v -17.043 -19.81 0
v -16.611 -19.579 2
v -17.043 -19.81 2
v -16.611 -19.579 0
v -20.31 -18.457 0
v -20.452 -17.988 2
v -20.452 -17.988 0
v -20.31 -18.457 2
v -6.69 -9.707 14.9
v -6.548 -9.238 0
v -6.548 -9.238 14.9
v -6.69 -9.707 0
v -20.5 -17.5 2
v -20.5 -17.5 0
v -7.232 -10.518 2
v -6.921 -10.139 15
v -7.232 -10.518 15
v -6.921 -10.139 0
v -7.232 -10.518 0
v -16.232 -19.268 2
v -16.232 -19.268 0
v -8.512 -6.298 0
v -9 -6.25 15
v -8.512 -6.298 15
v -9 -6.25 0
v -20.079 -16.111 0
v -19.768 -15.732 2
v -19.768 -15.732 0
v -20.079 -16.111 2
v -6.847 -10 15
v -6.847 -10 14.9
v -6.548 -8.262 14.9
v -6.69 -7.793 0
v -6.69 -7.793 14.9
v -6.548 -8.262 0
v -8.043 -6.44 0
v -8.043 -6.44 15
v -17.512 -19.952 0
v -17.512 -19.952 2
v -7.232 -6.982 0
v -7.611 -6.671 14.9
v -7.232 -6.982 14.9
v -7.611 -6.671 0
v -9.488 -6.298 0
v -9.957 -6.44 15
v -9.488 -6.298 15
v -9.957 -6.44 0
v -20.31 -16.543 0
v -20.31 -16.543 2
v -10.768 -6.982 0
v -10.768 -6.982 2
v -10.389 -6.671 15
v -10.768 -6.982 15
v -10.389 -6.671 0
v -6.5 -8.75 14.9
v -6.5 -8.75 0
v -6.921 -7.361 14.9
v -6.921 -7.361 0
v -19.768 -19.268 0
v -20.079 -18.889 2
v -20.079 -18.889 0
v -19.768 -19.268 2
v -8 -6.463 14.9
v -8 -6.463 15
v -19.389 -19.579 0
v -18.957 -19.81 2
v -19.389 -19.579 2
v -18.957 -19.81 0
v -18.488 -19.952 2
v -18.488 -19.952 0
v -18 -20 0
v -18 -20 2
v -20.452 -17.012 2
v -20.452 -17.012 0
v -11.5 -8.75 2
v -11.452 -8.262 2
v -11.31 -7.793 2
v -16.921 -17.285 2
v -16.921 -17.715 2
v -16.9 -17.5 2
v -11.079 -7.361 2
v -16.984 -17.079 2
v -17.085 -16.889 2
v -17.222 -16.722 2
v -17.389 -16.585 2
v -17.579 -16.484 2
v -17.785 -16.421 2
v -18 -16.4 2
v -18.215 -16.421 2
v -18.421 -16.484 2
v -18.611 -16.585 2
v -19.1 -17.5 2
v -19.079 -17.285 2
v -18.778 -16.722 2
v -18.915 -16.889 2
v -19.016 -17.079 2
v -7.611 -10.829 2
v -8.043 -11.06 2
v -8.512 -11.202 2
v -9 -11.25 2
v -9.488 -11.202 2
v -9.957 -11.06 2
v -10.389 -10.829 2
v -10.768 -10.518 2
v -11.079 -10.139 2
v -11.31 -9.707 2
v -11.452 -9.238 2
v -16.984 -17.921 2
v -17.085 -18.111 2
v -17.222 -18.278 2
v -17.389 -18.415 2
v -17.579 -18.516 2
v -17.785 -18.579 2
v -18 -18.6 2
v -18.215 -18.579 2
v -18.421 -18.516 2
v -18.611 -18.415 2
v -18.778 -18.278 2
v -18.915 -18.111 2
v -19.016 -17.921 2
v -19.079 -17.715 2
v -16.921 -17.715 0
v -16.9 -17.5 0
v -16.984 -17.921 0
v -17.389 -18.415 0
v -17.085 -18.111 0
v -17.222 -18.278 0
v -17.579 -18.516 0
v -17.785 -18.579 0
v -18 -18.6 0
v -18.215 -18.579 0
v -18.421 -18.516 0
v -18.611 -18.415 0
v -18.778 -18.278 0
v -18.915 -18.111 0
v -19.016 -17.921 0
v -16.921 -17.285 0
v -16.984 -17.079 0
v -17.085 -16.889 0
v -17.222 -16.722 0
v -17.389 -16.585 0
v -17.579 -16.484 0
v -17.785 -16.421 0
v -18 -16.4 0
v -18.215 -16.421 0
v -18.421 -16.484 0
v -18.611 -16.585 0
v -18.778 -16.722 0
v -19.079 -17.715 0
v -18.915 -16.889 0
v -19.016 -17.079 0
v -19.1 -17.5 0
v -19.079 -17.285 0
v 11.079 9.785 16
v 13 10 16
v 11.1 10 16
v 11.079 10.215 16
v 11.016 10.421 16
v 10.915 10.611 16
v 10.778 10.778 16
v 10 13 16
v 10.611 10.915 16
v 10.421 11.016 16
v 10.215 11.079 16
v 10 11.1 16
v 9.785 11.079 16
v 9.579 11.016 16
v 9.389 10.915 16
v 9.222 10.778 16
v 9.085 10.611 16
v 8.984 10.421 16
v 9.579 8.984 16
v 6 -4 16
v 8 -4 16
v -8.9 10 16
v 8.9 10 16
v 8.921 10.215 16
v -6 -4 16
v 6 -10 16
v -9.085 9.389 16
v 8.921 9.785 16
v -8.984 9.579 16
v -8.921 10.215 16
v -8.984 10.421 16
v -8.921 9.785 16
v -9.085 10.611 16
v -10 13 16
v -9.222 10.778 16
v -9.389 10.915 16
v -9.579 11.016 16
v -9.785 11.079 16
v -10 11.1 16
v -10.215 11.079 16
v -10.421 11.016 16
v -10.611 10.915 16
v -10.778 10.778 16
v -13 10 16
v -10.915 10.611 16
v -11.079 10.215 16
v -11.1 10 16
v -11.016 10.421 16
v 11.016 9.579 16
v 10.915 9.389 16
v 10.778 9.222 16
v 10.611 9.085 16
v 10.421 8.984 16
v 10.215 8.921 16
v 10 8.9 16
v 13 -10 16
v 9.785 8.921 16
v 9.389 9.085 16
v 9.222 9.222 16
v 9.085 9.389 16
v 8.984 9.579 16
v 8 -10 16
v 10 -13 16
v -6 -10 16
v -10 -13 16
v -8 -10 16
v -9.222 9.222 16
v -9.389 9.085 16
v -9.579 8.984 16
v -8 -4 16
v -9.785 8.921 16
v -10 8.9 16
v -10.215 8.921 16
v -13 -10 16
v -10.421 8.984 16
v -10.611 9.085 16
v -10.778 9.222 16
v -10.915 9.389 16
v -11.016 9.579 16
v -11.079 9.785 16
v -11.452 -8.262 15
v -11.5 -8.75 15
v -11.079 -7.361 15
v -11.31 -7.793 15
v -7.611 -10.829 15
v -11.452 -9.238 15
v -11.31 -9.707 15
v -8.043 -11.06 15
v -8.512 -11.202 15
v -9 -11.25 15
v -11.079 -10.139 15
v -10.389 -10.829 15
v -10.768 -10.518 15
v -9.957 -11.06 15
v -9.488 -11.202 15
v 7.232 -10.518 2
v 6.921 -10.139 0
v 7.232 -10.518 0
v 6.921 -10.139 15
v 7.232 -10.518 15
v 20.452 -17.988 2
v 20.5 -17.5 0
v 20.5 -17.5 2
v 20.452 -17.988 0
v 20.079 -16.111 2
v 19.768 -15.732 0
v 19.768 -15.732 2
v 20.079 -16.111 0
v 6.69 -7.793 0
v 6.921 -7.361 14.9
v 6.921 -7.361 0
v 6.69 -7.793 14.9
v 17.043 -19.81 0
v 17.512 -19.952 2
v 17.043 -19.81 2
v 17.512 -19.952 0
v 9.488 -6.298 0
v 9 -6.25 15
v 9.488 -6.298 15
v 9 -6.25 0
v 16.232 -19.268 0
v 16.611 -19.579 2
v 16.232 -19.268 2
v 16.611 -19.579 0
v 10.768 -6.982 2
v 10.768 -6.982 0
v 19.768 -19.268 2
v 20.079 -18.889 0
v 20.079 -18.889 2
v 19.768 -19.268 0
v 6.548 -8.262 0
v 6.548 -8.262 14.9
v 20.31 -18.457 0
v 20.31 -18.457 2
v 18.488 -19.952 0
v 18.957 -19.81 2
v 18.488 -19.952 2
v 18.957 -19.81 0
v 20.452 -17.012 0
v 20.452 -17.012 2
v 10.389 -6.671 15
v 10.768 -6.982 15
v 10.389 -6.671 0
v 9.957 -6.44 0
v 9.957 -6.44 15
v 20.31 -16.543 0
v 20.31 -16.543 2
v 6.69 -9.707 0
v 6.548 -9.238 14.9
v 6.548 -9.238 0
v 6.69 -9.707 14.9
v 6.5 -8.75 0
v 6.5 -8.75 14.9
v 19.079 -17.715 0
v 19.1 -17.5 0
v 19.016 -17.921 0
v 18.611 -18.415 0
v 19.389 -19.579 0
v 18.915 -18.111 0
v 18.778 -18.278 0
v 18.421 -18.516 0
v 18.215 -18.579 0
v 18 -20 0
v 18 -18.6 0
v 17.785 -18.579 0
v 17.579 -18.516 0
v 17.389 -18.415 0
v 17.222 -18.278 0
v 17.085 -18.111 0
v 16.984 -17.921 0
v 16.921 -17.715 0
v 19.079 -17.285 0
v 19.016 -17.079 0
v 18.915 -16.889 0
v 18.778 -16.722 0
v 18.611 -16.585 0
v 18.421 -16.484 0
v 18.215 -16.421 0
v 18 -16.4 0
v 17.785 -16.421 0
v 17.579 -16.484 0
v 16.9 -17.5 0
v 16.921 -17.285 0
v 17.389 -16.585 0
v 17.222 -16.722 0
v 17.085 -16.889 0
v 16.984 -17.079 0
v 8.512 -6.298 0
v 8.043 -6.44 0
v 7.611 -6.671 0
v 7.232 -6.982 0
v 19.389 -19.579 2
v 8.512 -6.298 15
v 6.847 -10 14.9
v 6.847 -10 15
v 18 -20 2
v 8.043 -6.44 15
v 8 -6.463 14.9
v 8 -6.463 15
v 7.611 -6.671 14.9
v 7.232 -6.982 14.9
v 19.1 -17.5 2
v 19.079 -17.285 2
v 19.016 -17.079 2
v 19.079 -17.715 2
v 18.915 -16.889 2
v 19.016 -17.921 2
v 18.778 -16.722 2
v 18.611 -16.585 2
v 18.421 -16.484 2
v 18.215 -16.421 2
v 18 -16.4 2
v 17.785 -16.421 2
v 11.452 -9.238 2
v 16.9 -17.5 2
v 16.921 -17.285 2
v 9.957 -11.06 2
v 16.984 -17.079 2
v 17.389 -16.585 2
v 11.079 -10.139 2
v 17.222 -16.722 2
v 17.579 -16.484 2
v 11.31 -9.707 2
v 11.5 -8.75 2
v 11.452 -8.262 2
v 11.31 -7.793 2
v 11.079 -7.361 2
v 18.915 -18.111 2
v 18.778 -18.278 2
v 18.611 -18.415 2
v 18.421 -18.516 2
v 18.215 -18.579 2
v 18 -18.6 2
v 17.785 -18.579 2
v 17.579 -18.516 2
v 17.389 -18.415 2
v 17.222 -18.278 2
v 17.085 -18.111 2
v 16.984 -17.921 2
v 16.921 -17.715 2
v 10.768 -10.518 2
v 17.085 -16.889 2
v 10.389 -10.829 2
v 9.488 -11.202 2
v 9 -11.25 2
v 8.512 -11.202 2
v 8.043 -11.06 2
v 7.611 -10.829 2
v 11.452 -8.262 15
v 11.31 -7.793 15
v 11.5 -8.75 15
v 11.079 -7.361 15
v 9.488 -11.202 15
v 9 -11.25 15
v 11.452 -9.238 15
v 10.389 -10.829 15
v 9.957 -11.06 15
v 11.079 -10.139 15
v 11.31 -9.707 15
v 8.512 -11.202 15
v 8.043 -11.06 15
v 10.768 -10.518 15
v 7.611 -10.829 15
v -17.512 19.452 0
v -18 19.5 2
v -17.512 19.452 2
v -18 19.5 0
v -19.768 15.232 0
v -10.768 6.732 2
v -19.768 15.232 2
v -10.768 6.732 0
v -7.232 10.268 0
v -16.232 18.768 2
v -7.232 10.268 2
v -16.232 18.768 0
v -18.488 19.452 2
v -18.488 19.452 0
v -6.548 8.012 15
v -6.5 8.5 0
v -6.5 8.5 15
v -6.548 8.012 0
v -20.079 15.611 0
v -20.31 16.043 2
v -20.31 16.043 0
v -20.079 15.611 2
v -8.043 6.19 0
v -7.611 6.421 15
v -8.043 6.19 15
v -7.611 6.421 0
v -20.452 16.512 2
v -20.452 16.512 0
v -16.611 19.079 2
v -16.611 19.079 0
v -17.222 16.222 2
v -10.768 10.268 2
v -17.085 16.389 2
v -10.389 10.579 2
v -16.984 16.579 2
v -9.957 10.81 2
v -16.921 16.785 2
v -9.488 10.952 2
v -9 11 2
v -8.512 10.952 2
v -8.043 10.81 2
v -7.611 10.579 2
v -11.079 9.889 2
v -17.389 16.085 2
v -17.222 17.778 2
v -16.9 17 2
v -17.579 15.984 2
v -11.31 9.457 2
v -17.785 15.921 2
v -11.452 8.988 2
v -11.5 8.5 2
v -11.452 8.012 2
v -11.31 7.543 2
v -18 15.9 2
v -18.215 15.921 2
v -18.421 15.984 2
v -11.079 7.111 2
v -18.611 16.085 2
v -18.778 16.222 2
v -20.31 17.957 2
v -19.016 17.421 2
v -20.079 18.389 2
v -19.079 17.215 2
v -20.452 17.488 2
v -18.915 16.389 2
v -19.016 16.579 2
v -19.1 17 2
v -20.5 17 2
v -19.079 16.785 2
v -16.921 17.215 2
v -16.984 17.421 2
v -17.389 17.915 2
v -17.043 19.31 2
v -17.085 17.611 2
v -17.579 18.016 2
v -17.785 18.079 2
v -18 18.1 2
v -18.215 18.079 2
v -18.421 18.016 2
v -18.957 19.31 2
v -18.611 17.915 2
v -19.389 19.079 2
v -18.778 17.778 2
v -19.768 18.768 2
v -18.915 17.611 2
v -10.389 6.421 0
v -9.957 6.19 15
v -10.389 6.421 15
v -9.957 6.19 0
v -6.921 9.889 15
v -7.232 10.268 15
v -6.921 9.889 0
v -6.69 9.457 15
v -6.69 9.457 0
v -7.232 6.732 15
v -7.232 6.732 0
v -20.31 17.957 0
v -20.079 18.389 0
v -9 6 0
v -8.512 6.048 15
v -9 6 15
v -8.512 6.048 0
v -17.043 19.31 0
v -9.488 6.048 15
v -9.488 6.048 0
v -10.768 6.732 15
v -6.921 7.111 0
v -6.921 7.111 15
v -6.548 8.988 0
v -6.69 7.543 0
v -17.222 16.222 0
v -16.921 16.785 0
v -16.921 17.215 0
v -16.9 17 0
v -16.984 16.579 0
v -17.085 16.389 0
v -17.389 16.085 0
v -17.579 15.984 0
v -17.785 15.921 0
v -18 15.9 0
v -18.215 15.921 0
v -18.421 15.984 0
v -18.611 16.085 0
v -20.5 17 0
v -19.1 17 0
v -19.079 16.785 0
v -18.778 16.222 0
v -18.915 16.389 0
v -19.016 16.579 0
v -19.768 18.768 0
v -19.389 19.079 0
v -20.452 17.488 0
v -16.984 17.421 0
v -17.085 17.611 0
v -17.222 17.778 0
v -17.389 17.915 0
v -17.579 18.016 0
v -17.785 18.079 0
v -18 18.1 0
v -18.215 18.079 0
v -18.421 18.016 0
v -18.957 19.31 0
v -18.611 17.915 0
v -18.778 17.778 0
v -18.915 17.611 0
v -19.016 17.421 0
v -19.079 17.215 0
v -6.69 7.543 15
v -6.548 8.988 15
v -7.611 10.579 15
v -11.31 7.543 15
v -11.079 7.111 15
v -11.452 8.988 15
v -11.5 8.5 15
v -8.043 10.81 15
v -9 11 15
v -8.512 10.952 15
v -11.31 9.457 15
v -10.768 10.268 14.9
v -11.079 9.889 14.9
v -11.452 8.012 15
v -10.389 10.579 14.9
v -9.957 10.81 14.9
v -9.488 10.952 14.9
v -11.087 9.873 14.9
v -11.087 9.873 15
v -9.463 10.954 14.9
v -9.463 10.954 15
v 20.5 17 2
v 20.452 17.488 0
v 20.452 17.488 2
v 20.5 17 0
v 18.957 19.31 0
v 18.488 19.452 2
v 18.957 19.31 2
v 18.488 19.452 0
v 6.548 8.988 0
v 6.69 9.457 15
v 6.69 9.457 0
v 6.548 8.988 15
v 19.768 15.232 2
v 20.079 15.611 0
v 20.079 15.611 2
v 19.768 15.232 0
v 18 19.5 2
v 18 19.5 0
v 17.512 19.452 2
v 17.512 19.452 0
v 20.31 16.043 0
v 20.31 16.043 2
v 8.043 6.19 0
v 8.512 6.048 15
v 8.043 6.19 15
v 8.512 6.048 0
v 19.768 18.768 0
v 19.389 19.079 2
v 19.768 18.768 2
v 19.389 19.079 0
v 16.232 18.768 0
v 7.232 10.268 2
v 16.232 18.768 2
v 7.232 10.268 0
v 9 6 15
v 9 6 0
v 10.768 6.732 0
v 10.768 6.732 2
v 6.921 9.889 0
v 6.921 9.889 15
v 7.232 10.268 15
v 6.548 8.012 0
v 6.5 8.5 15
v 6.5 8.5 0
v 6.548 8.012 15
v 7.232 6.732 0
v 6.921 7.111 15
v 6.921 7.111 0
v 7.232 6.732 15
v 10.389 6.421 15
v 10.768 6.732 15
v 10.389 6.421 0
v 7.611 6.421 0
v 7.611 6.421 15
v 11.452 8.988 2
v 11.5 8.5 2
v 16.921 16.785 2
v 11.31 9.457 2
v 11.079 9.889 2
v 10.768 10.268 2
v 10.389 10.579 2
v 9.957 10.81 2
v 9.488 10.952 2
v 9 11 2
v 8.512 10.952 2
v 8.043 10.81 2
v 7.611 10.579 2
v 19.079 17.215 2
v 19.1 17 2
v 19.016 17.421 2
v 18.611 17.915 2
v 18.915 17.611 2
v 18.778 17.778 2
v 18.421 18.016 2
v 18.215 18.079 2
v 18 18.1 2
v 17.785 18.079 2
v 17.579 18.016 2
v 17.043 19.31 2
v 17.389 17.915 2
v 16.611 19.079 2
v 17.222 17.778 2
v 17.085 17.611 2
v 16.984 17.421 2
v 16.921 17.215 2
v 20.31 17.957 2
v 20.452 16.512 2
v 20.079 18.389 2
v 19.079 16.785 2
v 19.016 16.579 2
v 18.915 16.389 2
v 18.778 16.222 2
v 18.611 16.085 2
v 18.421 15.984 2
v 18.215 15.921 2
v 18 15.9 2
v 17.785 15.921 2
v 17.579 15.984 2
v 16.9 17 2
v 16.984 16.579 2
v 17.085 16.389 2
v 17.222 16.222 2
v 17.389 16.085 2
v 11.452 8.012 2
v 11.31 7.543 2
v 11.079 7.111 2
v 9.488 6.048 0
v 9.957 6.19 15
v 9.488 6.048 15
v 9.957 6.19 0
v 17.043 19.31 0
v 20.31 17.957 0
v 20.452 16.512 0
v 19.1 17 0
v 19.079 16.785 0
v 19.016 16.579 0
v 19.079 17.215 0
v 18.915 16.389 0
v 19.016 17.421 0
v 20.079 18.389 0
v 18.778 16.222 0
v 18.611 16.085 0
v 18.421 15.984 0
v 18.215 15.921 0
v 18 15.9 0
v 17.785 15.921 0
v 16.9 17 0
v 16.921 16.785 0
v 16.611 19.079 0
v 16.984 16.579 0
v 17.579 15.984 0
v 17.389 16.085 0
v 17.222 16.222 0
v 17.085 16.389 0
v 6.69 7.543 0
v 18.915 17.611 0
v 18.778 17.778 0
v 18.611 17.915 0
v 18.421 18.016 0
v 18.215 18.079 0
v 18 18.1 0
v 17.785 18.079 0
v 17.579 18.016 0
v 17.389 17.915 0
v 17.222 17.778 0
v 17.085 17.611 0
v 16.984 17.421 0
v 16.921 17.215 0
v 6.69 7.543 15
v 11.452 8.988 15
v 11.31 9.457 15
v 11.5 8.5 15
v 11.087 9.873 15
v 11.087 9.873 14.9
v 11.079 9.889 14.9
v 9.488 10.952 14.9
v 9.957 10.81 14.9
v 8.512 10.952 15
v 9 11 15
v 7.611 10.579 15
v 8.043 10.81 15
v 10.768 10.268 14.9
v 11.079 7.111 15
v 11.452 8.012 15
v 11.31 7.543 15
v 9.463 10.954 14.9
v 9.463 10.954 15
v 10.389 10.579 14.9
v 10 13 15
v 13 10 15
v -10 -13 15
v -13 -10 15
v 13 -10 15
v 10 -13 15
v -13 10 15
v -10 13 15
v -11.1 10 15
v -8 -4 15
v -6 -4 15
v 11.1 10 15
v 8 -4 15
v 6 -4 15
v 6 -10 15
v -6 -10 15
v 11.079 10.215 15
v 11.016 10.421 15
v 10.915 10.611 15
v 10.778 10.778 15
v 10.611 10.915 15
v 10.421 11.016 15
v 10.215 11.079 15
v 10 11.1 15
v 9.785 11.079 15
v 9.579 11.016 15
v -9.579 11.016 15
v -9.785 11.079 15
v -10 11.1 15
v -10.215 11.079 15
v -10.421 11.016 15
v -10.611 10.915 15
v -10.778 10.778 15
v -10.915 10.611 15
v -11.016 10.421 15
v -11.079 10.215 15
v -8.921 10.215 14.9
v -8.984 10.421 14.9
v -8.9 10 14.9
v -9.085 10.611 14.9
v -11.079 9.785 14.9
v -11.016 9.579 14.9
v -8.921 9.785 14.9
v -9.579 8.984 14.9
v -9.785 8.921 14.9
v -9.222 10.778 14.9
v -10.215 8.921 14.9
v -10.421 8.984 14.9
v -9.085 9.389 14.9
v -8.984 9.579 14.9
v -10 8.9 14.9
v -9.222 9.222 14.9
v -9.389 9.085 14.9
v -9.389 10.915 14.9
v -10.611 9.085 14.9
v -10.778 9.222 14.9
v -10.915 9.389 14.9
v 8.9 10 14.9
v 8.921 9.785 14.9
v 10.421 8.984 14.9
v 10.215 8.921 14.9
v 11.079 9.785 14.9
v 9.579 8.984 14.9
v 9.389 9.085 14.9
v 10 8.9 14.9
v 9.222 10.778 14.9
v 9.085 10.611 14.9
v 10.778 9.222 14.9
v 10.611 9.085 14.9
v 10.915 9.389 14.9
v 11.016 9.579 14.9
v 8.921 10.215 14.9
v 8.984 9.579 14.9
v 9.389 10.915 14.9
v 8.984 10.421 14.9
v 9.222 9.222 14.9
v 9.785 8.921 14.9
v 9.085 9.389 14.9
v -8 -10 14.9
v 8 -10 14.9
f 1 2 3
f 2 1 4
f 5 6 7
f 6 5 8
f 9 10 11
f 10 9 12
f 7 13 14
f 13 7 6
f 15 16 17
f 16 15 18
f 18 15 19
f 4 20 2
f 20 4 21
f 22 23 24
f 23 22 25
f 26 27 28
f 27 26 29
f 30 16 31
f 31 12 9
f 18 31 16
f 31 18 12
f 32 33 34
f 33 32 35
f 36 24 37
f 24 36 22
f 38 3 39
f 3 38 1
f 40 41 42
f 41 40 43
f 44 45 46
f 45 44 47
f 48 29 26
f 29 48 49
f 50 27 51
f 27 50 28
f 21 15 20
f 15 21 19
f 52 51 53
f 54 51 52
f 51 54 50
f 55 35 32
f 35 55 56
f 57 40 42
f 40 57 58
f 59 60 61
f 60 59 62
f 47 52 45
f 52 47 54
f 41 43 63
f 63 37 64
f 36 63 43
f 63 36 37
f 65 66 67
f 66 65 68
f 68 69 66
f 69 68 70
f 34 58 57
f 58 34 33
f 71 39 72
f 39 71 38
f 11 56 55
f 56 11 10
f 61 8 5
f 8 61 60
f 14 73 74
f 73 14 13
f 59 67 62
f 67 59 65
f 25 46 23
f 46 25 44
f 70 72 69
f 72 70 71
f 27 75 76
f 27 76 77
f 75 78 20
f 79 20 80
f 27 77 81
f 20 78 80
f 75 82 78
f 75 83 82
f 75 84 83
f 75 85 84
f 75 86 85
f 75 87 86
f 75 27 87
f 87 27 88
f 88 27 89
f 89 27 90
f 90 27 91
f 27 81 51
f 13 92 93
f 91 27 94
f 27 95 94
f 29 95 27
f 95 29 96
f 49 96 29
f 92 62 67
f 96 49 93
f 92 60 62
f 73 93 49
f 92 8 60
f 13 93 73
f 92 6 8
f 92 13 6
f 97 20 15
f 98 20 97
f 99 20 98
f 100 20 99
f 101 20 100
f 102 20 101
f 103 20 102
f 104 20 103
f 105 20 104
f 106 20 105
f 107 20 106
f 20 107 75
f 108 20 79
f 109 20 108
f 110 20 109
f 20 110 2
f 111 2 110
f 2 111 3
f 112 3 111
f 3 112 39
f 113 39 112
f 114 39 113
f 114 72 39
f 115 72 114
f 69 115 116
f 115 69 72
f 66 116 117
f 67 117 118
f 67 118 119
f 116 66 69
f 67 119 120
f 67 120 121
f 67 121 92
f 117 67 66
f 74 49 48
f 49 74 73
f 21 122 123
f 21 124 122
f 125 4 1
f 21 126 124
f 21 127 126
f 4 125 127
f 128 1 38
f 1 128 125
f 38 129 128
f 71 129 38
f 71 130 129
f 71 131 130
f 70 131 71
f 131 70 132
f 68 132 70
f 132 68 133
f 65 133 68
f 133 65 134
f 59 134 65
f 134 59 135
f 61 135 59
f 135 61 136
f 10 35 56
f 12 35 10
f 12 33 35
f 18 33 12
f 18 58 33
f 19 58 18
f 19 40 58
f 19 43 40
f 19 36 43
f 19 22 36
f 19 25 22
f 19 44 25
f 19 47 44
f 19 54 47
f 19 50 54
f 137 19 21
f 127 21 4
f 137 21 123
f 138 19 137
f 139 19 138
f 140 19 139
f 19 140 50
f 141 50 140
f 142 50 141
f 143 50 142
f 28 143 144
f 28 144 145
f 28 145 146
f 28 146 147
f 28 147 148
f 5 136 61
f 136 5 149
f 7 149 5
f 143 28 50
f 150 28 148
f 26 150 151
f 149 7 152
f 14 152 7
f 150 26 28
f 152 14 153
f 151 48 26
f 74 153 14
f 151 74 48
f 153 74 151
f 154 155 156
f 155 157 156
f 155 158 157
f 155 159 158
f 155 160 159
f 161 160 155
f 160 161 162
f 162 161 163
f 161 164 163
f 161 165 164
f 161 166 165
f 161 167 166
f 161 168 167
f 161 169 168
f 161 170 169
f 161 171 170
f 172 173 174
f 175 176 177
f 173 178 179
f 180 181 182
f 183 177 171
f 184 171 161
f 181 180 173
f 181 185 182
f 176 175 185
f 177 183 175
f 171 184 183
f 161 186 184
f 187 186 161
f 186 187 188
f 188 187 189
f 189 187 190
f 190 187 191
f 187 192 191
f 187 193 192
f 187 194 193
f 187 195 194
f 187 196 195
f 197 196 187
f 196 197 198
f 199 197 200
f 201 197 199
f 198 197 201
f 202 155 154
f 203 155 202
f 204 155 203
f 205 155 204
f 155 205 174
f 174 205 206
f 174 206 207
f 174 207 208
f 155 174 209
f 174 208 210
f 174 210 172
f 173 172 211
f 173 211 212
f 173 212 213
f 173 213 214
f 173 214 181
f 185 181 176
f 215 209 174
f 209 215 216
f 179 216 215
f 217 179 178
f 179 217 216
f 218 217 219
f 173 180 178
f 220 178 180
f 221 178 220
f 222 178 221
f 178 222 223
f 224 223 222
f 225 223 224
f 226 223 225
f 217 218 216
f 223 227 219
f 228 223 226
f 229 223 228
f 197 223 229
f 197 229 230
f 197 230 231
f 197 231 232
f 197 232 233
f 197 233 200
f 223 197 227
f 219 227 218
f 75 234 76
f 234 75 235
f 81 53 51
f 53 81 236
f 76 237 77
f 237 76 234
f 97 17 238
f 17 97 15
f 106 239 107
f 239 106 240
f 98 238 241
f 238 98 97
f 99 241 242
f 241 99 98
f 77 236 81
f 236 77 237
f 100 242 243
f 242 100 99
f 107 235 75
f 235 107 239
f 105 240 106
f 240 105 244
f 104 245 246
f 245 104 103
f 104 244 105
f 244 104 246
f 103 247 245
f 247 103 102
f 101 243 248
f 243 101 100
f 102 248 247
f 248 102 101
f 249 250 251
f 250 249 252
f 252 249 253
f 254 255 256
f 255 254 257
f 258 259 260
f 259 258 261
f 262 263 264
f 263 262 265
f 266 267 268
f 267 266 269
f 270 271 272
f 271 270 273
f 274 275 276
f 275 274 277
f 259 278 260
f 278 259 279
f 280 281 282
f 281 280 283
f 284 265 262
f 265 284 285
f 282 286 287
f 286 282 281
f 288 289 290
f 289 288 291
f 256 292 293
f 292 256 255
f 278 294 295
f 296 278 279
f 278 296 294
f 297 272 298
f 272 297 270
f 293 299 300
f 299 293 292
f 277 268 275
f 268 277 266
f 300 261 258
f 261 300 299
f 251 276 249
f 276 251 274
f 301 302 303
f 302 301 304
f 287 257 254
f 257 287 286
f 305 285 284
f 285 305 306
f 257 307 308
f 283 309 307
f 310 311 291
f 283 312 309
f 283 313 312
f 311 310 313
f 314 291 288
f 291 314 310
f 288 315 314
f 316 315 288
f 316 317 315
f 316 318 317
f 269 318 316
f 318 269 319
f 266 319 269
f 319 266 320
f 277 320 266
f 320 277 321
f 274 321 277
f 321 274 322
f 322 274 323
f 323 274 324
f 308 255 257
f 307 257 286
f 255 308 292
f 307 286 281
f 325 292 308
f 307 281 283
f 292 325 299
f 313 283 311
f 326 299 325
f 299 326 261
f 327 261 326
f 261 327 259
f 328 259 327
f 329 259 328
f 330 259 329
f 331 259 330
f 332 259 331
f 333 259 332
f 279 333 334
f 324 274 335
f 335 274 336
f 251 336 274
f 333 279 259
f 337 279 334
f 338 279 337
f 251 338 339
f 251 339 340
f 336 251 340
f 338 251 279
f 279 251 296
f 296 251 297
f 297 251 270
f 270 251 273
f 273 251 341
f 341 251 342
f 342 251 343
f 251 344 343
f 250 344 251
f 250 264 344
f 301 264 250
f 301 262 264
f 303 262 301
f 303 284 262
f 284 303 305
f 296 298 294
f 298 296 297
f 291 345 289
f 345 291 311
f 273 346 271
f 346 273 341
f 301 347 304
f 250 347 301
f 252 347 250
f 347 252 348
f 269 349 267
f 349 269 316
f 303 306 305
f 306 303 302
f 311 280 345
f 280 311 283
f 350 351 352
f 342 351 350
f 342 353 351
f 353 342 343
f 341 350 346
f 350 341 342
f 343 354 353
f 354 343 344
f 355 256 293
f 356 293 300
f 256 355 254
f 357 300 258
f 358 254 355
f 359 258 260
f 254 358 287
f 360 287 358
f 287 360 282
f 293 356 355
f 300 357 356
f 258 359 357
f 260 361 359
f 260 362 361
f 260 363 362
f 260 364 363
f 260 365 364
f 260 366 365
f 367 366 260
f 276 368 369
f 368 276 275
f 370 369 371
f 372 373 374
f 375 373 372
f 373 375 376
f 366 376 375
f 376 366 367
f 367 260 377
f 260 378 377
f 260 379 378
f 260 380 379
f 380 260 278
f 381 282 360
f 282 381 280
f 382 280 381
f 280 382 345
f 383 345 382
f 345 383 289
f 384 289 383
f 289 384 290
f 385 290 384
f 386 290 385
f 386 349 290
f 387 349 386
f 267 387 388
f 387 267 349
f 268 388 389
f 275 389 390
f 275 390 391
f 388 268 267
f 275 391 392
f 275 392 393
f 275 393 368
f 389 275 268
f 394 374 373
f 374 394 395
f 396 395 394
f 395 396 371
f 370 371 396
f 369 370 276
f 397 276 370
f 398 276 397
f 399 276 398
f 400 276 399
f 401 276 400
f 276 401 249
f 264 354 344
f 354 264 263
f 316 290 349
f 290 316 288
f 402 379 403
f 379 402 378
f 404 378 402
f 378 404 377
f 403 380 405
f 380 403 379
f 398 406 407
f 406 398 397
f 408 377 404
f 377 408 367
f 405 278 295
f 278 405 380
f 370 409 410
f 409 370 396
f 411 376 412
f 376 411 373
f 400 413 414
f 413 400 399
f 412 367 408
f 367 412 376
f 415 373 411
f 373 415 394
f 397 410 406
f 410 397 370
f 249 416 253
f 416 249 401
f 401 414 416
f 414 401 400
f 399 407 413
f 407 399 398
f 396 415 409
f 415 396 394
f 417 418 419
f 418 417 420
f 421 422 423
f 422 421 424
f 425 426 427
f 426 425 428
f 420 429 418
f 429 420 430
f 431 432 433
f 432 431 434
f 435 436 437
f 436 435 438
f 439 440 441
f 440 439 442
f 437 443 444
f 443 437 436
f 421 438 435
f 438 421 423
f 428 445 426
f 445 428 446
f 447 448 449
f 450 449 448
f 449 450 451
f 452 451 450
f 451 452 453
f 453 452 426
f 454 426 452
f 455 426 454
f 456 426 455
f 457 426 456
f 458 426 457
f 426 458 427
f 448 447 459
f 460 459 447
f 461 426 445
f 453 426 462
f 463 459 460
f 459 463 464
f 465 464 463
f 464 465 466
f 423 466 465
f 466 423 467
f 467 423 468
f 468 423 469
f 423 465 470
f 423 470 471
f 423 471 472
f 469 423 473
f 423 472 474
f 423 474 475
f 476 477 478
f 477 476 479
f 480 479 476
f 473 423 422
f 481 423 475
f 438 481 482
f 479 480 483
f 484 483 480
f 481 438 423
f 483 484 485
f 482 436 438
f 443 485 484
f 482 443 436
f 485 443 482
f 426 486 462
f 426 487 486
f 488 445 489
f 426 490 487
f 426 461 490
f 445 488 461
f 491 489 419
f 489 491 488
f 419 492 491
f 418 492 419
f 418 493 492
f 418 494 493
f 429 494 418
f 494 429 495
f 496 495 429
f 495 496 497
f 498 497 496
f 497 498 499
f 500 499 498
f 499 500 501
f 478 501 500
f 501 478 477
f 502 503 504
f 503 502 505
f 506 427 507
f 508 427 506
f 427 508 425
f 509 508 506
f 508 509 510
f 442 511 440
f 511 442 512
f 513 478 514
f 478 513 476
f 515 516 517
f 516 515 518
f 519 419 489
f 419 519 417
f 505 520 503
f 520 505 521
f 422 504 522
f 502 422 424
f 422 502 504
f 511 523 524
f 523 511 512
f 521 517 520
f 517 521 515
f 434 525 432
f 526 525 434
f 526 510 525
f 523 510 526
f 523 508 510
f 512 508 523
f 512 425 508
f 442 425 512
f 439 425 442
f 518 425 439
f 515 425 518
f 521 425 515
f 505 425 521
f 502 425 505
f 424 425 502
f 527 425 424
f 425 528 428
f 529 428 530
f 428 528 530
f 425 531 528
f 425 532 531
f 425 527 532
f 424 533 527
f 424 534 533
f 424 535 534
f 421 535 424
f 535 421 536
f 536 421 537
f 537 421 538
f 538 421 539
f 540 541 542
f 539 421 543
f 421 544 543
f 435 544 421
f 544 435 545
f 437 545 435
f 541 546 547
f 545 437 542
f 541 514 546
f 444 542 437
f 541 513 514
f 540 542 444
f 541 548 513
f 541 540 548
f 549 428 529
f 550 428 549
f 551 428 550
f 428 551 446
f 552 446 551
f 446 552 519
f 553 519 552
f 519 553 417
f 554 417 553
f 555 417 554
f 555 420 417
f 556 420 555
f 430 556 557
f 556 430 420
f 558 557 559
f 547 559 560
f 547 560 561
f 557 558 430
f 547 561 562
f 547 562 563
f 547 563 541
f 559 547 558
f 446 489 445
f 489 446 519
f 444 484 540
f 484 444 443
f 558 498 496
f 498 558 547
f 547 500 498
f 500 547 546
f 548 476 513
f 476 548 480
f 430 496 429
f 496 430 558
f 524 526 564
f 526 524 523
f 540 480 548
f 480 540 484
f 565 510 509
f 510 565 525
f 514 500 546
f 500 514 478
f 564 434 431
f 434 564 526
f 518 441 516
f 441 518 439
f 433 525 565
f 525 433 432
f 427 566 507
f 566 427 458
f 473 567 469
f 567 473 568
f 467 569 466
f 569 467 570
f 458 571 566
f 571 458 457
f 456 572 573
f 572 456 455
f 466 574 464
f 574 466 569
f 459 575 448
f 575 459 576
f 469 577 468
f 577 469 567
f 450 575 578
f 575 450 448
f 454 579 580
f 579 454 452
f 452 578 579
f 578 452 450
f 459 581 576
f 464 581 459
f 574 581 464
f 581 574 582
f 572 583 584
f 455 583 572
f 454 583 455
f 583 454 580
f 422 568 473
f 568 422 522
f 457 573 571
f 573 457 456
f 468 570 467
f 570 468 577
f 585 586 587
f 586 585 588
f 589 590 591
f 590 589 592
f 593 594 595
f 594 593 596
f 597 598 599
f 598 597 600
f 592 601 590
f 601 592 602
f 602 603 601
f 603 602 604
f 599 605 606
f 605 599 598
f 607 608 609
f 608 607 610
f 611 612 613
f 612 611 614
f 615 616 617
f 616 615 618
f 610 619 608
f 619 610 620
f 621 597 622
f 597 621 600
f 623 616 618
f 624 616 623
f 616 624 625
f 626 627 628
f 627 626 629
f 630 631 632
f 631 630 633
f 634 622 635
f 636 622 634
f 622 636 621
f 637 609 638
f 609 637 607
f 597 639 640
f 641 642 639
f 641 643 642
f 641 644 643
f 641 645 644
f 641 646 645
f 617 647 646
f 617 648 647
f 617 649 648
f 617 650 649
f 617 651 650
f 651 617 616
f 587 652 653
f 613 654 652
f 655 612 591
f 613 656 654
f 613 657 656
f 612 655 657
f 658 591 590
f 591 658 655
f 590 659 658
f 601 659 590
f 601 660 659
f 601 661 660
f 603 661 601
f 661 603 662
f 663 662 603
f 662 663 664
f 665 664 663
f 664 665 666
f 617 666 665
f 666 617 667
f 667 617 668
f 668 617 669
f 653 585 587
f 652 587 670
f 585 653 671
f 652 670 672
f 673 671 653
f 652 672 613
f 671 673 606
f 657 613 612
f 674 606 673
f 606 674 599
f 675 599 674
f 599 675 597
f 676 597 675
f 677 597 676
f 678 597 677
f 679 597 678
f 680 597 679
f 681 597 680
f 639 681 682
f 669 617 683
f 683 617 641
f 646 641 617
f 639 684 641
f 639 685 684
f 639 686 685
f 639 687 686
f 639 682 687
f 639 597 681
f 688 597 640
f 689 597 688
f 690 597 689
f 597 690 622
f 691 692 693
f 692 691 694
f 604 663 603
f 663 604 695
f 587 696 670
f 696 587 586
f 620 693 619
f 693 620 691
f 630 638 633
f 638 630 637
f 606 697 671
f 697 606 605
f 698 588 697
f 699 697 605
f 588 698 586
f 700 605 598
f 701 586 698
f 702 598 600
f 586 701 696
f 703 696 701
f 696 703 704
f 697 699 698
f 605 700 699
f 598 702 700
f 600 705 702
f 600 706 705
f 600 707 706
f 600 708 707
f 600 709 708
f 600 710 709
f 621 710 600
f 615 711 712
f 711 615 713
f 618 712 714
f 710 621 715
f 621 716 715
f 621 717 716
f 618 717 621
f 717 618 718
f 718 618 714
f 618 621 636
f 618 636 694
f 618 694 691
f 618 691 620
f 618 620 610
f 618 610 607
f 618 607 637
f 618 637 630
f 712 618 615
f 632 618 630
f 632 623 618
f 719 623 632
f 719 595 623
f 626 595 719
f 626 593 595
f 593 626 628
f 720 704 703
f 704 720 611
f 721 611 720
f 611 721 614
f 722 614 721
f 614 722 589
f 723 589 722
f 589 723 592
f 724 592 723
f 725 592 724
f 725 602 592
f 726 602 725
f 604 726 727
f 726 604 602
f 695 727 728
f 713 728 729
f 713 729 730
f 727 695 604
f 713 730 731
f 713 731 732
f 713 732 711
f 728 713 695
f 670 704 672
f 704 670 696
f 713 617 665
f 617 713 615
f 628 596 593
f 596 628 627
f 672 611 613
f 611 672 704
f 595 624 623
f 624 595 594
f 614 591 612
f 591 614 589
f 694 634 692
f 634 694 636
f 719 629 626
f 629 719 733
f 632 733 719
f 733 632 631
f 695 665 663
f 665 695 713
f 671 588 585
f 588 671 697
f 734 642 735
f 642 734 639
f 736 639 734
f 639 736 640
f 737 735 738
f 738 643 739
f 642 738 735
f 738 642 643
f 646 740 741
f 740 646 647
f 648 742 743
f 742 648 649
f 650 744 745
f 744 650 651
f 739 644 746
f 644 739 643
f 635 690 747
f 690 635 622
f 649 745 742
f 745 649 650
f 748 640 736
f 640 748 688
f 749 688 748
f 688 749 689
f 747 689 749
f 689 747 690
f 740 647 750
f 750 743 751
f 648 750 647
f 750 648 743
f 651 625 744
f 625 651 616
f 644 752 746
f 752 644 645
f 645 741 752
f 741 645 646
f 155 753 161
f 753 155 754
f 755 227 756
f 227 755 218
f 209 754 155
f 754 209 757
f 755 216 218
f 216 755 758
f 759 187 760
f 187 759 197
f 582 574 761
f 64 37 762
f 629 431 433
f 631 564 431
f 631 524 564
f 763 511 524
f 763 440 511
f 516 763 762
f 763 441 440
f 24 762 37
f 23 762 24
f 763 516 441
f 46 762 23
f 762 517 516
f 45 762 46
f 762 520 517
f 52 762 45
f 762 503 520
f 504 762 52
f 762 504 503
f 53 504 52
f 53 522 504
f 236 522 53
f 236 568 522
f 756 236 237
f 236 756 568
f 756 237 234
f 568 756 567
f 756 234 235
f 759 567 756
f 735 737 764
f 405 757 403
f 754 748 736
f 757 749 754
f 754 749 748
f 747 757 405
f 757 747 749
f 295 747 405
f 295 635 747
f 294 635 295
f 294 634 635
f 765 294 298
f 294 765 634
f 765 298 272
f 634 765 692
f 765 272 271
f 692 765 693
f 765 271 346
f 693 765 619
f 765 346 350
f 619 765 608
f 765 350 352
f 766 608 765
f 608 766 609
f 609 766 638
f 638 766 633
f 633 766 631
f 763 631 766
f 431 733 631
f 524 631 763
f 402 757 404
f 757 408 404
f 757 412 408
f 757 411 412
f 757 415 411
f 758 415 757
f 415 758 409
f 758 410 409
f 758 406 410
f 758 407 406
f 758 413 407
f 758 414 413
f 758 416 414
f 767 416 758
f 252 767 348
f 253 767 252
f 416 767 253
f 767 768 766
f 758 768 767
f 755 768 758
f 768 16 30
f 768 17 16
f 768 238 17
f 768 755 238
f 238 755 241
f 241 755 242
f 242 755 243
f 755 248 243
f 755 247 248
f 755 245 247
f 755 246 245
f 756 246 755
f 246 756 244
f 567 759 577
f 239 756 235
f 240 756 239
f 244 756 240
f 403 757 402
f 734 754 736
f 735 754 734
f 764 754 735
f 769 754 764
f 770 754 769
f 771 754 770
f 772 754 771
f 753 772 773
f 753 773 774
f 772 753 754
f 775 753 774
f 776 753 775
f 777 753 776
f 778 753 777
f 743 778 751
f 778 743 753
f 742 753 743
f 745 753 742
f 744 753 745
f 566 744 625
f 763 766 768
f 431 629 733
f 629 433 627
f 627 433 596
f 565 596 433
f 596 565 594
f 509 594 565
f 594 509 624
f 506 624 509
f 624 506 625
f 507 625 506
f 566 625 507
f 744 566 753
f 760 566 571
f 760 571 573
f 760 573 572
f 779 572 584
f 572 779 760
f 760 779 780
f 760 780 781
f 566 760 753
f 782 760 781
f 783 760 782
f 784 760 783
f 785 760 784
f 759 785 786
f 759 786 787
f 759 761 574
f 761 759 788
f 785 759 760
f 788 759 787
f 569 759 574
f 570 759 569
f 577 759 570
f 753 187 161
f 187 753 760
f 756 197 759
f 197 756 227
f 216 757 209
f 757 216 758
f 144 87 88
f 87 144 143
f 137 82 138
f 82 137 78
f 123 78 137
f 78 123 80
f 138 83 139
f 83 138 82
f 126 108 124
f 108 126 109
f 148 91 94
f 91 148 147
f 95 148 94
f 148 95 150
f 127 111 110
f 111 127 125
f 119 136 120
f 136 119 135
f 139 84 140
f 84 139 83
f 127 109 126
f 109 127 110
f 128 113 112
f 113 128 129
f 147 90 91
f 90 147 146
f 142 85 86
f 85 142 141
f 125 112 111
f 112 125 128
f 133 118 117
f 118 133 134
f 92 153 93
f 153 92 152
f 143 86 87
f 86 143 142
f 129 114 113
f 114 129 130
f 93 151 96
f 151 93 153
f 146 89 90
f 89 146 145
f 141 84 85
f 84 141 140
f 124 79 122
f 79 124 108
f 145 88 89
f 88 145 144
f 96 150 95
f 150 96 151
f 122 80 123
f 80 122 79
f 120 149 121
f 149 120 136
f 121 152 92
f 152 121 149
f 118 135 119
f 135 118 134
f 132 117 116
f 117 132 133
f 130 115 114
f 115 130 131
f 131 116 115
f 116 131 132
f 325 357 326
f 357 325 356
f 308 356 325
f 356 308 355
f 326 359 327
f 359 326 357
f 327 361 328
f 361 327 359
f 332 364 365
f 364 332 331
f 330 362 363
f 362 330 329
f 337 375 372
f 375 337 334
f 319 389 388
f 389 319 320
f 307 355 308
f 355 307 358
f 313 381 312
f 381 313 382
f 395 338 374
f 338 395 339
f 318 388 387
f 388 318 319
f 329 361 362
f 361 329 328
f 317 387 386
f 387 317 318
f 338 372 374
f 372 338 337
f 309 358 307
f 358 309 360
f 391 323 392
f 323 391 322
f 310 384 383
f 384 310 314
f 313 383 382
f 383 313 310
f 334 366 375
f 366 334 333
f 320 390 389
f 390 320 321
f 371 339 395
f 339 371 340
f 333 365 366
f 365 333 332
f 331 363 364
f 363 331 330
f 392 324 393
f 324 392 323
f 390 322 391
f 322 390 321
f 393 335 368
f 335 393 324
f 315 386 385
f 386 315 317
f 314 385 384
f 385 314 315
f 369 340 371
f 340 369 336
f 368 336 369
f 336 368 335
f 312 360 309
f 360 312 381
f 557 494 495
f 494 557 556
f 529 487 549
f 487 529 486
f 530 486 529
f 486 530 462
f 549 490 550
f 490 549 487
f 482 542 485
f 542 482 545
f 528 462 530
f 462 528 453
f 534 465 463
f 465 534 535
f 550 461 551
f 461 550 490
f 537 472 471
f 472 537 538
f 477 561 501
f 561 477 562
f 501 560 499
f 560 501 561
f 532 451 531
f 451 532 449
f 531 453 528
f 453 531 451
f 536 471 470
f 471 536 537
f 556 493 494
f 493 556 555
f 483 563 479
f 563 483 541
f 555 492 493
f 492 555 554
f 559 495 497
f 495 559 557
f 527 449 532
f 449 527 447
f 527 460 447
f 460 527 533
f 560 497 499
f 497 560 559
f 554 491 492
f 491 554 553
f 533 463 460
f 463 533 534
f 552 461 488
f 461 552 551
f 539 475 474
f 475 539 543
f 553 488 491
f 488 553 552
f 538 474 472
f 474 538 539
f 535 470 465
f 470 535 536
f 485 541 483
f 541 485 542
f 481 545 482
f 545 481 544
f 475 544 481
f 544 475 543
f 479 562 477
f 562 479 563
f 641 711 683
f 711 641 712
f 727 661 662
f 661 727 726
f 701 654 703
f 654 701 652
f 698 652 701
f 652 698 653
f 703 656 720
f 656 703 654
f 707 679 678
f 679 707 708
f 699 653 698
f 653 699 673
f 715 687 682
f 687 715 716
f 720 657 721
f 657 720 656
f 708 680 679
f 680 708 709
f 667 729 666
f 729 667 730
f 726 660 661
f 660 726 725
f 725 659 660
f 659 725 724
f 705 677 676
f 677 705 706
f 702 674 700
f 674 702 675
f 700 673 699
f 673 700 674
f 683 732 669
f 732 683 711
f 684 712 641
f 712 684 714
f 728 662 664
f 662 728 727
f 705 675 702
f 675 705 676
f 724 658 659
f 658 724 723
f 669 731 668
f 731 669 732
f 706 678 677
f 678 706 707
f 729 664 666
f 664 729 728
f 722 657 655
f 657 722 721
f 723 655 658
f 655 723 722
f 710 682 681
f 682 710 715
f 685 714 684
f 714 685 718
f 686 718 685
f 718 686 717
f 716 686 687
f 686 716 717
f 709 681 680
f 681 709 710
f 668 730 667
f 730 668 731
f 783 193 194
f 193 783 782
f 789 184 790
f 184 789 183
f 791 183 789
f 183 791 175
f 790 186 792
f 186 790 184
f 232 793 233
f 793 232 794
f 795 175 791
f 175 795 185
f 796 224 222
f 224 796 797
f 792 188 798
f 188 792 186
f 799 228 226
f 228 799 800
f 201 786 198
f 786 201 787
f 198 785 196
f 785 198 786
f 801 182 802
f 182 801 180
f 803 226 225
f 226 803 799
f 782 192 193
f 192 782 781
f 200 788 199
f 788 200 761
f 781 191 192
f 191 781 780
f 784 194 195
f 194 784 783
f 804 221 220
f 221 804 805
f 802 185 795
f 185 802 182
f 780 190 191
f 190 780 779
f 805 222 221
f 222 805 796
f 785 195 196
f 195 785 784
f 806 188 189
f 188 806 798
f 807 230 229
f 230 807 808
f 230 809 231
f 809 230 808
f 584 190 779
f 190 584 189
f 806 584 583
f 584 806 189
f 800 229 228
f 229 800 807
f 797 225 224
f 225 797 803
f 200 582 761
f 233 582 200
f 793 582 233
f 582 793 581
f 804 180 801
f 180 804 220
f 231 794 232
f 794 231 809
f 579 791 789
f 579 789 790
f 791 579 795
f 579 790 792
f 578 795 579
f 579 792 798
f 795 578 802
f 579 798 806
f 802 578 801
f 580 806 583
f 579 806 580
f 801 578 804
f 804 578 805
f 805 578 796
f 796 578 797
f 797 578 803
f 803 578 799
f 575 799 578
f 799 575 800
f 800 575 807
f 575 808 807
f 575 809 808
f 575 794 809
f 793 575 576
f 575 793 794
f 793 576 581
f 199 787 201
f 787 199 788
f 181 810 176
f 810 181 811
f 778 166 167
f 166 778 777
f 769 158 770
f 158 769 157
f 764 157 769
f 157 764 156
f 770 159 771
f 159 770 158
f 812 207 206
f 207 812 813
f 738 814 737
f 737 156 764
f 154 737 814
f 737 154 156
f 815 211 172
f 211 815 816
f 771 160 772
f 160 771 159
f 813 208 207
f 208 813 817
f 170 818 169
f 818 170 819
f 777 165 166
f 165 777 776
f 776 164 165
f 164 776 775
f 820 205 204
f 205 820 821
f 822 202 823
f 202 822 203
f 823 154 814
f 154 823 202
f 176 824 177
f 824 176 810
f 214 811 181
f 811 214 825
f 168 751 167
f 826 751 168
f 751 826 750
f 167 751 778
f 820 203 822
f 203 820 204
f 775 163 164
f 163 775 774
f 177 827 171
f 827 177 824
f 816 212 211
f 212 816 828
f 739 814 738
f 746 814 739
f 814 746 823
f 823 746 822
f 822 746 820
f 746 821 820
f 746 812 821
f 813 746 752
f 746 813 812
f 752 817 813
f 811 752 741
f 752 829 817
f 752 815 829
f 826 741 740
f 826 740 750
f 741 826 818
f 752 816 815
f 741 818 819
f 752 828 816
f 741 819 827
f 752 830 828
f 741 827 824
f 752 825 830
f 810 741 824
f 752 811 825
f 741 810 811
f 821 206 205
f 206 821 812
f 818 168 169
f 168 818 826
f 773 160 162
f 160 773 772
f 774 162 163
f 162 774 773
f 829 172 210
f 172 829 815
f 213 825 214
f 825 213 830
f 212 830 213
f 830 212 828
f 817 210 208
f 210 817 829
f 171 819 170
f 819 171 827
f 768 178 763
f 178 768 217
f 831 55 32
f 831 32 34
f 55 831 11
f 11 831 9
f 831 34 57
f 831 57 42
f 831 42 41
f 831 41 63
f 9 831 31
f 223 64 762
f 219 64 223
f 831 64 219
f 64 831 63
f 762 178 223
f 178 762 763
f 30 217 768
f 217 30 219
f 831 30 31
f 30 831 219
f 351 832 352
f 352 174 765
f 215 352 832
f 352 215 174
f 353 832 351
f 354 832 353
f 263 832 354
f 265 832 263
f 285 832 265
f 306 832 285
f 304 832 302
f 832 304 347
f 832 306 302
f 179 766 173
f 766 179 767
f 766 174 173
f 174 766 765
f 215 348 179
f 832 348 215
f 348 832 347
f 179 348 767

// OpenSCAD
// Bottom rests on insulated PCB spacers at assembly Z=7; deck top is Z=23.
// Same asymmetric four-hole pattern as the carrier. +Y toward battery-edge/front.
$fn=32;
mounts=[[-18,-17.5],[18,-17.5],[-18,17],[18,17]];
difference(){
 union(){
  translate([0,0,15])linear_extrude(1)polygon([[-10,-13],[10,-13],[13,-10],[13,10],[10,13],[-10,13],[-13,10],[-13,-10]]);
  for(p=mounts){
   hull(){translate([p[0],p[1],0])cylinder(h=2,r=2.5);translate([p[0]*.5,p[1]*.5,0])cylinder(h=2,r=2.5);}
   translate([p[0]*.5,p[1]*.5,0])cylinder(h=16,r=2.5);
  }
 }
 for(p=mounts)translate([p[0],p[1],-.1])cylinder(h=2.2,d=2.2);
 for(x=[-10,10])translate([x,10,14.9])cylinder(h=1.2,d=2.2);
 for(x=[-8,6])translate([x,-10,14.9])cube([2,6,1.2]);
}
